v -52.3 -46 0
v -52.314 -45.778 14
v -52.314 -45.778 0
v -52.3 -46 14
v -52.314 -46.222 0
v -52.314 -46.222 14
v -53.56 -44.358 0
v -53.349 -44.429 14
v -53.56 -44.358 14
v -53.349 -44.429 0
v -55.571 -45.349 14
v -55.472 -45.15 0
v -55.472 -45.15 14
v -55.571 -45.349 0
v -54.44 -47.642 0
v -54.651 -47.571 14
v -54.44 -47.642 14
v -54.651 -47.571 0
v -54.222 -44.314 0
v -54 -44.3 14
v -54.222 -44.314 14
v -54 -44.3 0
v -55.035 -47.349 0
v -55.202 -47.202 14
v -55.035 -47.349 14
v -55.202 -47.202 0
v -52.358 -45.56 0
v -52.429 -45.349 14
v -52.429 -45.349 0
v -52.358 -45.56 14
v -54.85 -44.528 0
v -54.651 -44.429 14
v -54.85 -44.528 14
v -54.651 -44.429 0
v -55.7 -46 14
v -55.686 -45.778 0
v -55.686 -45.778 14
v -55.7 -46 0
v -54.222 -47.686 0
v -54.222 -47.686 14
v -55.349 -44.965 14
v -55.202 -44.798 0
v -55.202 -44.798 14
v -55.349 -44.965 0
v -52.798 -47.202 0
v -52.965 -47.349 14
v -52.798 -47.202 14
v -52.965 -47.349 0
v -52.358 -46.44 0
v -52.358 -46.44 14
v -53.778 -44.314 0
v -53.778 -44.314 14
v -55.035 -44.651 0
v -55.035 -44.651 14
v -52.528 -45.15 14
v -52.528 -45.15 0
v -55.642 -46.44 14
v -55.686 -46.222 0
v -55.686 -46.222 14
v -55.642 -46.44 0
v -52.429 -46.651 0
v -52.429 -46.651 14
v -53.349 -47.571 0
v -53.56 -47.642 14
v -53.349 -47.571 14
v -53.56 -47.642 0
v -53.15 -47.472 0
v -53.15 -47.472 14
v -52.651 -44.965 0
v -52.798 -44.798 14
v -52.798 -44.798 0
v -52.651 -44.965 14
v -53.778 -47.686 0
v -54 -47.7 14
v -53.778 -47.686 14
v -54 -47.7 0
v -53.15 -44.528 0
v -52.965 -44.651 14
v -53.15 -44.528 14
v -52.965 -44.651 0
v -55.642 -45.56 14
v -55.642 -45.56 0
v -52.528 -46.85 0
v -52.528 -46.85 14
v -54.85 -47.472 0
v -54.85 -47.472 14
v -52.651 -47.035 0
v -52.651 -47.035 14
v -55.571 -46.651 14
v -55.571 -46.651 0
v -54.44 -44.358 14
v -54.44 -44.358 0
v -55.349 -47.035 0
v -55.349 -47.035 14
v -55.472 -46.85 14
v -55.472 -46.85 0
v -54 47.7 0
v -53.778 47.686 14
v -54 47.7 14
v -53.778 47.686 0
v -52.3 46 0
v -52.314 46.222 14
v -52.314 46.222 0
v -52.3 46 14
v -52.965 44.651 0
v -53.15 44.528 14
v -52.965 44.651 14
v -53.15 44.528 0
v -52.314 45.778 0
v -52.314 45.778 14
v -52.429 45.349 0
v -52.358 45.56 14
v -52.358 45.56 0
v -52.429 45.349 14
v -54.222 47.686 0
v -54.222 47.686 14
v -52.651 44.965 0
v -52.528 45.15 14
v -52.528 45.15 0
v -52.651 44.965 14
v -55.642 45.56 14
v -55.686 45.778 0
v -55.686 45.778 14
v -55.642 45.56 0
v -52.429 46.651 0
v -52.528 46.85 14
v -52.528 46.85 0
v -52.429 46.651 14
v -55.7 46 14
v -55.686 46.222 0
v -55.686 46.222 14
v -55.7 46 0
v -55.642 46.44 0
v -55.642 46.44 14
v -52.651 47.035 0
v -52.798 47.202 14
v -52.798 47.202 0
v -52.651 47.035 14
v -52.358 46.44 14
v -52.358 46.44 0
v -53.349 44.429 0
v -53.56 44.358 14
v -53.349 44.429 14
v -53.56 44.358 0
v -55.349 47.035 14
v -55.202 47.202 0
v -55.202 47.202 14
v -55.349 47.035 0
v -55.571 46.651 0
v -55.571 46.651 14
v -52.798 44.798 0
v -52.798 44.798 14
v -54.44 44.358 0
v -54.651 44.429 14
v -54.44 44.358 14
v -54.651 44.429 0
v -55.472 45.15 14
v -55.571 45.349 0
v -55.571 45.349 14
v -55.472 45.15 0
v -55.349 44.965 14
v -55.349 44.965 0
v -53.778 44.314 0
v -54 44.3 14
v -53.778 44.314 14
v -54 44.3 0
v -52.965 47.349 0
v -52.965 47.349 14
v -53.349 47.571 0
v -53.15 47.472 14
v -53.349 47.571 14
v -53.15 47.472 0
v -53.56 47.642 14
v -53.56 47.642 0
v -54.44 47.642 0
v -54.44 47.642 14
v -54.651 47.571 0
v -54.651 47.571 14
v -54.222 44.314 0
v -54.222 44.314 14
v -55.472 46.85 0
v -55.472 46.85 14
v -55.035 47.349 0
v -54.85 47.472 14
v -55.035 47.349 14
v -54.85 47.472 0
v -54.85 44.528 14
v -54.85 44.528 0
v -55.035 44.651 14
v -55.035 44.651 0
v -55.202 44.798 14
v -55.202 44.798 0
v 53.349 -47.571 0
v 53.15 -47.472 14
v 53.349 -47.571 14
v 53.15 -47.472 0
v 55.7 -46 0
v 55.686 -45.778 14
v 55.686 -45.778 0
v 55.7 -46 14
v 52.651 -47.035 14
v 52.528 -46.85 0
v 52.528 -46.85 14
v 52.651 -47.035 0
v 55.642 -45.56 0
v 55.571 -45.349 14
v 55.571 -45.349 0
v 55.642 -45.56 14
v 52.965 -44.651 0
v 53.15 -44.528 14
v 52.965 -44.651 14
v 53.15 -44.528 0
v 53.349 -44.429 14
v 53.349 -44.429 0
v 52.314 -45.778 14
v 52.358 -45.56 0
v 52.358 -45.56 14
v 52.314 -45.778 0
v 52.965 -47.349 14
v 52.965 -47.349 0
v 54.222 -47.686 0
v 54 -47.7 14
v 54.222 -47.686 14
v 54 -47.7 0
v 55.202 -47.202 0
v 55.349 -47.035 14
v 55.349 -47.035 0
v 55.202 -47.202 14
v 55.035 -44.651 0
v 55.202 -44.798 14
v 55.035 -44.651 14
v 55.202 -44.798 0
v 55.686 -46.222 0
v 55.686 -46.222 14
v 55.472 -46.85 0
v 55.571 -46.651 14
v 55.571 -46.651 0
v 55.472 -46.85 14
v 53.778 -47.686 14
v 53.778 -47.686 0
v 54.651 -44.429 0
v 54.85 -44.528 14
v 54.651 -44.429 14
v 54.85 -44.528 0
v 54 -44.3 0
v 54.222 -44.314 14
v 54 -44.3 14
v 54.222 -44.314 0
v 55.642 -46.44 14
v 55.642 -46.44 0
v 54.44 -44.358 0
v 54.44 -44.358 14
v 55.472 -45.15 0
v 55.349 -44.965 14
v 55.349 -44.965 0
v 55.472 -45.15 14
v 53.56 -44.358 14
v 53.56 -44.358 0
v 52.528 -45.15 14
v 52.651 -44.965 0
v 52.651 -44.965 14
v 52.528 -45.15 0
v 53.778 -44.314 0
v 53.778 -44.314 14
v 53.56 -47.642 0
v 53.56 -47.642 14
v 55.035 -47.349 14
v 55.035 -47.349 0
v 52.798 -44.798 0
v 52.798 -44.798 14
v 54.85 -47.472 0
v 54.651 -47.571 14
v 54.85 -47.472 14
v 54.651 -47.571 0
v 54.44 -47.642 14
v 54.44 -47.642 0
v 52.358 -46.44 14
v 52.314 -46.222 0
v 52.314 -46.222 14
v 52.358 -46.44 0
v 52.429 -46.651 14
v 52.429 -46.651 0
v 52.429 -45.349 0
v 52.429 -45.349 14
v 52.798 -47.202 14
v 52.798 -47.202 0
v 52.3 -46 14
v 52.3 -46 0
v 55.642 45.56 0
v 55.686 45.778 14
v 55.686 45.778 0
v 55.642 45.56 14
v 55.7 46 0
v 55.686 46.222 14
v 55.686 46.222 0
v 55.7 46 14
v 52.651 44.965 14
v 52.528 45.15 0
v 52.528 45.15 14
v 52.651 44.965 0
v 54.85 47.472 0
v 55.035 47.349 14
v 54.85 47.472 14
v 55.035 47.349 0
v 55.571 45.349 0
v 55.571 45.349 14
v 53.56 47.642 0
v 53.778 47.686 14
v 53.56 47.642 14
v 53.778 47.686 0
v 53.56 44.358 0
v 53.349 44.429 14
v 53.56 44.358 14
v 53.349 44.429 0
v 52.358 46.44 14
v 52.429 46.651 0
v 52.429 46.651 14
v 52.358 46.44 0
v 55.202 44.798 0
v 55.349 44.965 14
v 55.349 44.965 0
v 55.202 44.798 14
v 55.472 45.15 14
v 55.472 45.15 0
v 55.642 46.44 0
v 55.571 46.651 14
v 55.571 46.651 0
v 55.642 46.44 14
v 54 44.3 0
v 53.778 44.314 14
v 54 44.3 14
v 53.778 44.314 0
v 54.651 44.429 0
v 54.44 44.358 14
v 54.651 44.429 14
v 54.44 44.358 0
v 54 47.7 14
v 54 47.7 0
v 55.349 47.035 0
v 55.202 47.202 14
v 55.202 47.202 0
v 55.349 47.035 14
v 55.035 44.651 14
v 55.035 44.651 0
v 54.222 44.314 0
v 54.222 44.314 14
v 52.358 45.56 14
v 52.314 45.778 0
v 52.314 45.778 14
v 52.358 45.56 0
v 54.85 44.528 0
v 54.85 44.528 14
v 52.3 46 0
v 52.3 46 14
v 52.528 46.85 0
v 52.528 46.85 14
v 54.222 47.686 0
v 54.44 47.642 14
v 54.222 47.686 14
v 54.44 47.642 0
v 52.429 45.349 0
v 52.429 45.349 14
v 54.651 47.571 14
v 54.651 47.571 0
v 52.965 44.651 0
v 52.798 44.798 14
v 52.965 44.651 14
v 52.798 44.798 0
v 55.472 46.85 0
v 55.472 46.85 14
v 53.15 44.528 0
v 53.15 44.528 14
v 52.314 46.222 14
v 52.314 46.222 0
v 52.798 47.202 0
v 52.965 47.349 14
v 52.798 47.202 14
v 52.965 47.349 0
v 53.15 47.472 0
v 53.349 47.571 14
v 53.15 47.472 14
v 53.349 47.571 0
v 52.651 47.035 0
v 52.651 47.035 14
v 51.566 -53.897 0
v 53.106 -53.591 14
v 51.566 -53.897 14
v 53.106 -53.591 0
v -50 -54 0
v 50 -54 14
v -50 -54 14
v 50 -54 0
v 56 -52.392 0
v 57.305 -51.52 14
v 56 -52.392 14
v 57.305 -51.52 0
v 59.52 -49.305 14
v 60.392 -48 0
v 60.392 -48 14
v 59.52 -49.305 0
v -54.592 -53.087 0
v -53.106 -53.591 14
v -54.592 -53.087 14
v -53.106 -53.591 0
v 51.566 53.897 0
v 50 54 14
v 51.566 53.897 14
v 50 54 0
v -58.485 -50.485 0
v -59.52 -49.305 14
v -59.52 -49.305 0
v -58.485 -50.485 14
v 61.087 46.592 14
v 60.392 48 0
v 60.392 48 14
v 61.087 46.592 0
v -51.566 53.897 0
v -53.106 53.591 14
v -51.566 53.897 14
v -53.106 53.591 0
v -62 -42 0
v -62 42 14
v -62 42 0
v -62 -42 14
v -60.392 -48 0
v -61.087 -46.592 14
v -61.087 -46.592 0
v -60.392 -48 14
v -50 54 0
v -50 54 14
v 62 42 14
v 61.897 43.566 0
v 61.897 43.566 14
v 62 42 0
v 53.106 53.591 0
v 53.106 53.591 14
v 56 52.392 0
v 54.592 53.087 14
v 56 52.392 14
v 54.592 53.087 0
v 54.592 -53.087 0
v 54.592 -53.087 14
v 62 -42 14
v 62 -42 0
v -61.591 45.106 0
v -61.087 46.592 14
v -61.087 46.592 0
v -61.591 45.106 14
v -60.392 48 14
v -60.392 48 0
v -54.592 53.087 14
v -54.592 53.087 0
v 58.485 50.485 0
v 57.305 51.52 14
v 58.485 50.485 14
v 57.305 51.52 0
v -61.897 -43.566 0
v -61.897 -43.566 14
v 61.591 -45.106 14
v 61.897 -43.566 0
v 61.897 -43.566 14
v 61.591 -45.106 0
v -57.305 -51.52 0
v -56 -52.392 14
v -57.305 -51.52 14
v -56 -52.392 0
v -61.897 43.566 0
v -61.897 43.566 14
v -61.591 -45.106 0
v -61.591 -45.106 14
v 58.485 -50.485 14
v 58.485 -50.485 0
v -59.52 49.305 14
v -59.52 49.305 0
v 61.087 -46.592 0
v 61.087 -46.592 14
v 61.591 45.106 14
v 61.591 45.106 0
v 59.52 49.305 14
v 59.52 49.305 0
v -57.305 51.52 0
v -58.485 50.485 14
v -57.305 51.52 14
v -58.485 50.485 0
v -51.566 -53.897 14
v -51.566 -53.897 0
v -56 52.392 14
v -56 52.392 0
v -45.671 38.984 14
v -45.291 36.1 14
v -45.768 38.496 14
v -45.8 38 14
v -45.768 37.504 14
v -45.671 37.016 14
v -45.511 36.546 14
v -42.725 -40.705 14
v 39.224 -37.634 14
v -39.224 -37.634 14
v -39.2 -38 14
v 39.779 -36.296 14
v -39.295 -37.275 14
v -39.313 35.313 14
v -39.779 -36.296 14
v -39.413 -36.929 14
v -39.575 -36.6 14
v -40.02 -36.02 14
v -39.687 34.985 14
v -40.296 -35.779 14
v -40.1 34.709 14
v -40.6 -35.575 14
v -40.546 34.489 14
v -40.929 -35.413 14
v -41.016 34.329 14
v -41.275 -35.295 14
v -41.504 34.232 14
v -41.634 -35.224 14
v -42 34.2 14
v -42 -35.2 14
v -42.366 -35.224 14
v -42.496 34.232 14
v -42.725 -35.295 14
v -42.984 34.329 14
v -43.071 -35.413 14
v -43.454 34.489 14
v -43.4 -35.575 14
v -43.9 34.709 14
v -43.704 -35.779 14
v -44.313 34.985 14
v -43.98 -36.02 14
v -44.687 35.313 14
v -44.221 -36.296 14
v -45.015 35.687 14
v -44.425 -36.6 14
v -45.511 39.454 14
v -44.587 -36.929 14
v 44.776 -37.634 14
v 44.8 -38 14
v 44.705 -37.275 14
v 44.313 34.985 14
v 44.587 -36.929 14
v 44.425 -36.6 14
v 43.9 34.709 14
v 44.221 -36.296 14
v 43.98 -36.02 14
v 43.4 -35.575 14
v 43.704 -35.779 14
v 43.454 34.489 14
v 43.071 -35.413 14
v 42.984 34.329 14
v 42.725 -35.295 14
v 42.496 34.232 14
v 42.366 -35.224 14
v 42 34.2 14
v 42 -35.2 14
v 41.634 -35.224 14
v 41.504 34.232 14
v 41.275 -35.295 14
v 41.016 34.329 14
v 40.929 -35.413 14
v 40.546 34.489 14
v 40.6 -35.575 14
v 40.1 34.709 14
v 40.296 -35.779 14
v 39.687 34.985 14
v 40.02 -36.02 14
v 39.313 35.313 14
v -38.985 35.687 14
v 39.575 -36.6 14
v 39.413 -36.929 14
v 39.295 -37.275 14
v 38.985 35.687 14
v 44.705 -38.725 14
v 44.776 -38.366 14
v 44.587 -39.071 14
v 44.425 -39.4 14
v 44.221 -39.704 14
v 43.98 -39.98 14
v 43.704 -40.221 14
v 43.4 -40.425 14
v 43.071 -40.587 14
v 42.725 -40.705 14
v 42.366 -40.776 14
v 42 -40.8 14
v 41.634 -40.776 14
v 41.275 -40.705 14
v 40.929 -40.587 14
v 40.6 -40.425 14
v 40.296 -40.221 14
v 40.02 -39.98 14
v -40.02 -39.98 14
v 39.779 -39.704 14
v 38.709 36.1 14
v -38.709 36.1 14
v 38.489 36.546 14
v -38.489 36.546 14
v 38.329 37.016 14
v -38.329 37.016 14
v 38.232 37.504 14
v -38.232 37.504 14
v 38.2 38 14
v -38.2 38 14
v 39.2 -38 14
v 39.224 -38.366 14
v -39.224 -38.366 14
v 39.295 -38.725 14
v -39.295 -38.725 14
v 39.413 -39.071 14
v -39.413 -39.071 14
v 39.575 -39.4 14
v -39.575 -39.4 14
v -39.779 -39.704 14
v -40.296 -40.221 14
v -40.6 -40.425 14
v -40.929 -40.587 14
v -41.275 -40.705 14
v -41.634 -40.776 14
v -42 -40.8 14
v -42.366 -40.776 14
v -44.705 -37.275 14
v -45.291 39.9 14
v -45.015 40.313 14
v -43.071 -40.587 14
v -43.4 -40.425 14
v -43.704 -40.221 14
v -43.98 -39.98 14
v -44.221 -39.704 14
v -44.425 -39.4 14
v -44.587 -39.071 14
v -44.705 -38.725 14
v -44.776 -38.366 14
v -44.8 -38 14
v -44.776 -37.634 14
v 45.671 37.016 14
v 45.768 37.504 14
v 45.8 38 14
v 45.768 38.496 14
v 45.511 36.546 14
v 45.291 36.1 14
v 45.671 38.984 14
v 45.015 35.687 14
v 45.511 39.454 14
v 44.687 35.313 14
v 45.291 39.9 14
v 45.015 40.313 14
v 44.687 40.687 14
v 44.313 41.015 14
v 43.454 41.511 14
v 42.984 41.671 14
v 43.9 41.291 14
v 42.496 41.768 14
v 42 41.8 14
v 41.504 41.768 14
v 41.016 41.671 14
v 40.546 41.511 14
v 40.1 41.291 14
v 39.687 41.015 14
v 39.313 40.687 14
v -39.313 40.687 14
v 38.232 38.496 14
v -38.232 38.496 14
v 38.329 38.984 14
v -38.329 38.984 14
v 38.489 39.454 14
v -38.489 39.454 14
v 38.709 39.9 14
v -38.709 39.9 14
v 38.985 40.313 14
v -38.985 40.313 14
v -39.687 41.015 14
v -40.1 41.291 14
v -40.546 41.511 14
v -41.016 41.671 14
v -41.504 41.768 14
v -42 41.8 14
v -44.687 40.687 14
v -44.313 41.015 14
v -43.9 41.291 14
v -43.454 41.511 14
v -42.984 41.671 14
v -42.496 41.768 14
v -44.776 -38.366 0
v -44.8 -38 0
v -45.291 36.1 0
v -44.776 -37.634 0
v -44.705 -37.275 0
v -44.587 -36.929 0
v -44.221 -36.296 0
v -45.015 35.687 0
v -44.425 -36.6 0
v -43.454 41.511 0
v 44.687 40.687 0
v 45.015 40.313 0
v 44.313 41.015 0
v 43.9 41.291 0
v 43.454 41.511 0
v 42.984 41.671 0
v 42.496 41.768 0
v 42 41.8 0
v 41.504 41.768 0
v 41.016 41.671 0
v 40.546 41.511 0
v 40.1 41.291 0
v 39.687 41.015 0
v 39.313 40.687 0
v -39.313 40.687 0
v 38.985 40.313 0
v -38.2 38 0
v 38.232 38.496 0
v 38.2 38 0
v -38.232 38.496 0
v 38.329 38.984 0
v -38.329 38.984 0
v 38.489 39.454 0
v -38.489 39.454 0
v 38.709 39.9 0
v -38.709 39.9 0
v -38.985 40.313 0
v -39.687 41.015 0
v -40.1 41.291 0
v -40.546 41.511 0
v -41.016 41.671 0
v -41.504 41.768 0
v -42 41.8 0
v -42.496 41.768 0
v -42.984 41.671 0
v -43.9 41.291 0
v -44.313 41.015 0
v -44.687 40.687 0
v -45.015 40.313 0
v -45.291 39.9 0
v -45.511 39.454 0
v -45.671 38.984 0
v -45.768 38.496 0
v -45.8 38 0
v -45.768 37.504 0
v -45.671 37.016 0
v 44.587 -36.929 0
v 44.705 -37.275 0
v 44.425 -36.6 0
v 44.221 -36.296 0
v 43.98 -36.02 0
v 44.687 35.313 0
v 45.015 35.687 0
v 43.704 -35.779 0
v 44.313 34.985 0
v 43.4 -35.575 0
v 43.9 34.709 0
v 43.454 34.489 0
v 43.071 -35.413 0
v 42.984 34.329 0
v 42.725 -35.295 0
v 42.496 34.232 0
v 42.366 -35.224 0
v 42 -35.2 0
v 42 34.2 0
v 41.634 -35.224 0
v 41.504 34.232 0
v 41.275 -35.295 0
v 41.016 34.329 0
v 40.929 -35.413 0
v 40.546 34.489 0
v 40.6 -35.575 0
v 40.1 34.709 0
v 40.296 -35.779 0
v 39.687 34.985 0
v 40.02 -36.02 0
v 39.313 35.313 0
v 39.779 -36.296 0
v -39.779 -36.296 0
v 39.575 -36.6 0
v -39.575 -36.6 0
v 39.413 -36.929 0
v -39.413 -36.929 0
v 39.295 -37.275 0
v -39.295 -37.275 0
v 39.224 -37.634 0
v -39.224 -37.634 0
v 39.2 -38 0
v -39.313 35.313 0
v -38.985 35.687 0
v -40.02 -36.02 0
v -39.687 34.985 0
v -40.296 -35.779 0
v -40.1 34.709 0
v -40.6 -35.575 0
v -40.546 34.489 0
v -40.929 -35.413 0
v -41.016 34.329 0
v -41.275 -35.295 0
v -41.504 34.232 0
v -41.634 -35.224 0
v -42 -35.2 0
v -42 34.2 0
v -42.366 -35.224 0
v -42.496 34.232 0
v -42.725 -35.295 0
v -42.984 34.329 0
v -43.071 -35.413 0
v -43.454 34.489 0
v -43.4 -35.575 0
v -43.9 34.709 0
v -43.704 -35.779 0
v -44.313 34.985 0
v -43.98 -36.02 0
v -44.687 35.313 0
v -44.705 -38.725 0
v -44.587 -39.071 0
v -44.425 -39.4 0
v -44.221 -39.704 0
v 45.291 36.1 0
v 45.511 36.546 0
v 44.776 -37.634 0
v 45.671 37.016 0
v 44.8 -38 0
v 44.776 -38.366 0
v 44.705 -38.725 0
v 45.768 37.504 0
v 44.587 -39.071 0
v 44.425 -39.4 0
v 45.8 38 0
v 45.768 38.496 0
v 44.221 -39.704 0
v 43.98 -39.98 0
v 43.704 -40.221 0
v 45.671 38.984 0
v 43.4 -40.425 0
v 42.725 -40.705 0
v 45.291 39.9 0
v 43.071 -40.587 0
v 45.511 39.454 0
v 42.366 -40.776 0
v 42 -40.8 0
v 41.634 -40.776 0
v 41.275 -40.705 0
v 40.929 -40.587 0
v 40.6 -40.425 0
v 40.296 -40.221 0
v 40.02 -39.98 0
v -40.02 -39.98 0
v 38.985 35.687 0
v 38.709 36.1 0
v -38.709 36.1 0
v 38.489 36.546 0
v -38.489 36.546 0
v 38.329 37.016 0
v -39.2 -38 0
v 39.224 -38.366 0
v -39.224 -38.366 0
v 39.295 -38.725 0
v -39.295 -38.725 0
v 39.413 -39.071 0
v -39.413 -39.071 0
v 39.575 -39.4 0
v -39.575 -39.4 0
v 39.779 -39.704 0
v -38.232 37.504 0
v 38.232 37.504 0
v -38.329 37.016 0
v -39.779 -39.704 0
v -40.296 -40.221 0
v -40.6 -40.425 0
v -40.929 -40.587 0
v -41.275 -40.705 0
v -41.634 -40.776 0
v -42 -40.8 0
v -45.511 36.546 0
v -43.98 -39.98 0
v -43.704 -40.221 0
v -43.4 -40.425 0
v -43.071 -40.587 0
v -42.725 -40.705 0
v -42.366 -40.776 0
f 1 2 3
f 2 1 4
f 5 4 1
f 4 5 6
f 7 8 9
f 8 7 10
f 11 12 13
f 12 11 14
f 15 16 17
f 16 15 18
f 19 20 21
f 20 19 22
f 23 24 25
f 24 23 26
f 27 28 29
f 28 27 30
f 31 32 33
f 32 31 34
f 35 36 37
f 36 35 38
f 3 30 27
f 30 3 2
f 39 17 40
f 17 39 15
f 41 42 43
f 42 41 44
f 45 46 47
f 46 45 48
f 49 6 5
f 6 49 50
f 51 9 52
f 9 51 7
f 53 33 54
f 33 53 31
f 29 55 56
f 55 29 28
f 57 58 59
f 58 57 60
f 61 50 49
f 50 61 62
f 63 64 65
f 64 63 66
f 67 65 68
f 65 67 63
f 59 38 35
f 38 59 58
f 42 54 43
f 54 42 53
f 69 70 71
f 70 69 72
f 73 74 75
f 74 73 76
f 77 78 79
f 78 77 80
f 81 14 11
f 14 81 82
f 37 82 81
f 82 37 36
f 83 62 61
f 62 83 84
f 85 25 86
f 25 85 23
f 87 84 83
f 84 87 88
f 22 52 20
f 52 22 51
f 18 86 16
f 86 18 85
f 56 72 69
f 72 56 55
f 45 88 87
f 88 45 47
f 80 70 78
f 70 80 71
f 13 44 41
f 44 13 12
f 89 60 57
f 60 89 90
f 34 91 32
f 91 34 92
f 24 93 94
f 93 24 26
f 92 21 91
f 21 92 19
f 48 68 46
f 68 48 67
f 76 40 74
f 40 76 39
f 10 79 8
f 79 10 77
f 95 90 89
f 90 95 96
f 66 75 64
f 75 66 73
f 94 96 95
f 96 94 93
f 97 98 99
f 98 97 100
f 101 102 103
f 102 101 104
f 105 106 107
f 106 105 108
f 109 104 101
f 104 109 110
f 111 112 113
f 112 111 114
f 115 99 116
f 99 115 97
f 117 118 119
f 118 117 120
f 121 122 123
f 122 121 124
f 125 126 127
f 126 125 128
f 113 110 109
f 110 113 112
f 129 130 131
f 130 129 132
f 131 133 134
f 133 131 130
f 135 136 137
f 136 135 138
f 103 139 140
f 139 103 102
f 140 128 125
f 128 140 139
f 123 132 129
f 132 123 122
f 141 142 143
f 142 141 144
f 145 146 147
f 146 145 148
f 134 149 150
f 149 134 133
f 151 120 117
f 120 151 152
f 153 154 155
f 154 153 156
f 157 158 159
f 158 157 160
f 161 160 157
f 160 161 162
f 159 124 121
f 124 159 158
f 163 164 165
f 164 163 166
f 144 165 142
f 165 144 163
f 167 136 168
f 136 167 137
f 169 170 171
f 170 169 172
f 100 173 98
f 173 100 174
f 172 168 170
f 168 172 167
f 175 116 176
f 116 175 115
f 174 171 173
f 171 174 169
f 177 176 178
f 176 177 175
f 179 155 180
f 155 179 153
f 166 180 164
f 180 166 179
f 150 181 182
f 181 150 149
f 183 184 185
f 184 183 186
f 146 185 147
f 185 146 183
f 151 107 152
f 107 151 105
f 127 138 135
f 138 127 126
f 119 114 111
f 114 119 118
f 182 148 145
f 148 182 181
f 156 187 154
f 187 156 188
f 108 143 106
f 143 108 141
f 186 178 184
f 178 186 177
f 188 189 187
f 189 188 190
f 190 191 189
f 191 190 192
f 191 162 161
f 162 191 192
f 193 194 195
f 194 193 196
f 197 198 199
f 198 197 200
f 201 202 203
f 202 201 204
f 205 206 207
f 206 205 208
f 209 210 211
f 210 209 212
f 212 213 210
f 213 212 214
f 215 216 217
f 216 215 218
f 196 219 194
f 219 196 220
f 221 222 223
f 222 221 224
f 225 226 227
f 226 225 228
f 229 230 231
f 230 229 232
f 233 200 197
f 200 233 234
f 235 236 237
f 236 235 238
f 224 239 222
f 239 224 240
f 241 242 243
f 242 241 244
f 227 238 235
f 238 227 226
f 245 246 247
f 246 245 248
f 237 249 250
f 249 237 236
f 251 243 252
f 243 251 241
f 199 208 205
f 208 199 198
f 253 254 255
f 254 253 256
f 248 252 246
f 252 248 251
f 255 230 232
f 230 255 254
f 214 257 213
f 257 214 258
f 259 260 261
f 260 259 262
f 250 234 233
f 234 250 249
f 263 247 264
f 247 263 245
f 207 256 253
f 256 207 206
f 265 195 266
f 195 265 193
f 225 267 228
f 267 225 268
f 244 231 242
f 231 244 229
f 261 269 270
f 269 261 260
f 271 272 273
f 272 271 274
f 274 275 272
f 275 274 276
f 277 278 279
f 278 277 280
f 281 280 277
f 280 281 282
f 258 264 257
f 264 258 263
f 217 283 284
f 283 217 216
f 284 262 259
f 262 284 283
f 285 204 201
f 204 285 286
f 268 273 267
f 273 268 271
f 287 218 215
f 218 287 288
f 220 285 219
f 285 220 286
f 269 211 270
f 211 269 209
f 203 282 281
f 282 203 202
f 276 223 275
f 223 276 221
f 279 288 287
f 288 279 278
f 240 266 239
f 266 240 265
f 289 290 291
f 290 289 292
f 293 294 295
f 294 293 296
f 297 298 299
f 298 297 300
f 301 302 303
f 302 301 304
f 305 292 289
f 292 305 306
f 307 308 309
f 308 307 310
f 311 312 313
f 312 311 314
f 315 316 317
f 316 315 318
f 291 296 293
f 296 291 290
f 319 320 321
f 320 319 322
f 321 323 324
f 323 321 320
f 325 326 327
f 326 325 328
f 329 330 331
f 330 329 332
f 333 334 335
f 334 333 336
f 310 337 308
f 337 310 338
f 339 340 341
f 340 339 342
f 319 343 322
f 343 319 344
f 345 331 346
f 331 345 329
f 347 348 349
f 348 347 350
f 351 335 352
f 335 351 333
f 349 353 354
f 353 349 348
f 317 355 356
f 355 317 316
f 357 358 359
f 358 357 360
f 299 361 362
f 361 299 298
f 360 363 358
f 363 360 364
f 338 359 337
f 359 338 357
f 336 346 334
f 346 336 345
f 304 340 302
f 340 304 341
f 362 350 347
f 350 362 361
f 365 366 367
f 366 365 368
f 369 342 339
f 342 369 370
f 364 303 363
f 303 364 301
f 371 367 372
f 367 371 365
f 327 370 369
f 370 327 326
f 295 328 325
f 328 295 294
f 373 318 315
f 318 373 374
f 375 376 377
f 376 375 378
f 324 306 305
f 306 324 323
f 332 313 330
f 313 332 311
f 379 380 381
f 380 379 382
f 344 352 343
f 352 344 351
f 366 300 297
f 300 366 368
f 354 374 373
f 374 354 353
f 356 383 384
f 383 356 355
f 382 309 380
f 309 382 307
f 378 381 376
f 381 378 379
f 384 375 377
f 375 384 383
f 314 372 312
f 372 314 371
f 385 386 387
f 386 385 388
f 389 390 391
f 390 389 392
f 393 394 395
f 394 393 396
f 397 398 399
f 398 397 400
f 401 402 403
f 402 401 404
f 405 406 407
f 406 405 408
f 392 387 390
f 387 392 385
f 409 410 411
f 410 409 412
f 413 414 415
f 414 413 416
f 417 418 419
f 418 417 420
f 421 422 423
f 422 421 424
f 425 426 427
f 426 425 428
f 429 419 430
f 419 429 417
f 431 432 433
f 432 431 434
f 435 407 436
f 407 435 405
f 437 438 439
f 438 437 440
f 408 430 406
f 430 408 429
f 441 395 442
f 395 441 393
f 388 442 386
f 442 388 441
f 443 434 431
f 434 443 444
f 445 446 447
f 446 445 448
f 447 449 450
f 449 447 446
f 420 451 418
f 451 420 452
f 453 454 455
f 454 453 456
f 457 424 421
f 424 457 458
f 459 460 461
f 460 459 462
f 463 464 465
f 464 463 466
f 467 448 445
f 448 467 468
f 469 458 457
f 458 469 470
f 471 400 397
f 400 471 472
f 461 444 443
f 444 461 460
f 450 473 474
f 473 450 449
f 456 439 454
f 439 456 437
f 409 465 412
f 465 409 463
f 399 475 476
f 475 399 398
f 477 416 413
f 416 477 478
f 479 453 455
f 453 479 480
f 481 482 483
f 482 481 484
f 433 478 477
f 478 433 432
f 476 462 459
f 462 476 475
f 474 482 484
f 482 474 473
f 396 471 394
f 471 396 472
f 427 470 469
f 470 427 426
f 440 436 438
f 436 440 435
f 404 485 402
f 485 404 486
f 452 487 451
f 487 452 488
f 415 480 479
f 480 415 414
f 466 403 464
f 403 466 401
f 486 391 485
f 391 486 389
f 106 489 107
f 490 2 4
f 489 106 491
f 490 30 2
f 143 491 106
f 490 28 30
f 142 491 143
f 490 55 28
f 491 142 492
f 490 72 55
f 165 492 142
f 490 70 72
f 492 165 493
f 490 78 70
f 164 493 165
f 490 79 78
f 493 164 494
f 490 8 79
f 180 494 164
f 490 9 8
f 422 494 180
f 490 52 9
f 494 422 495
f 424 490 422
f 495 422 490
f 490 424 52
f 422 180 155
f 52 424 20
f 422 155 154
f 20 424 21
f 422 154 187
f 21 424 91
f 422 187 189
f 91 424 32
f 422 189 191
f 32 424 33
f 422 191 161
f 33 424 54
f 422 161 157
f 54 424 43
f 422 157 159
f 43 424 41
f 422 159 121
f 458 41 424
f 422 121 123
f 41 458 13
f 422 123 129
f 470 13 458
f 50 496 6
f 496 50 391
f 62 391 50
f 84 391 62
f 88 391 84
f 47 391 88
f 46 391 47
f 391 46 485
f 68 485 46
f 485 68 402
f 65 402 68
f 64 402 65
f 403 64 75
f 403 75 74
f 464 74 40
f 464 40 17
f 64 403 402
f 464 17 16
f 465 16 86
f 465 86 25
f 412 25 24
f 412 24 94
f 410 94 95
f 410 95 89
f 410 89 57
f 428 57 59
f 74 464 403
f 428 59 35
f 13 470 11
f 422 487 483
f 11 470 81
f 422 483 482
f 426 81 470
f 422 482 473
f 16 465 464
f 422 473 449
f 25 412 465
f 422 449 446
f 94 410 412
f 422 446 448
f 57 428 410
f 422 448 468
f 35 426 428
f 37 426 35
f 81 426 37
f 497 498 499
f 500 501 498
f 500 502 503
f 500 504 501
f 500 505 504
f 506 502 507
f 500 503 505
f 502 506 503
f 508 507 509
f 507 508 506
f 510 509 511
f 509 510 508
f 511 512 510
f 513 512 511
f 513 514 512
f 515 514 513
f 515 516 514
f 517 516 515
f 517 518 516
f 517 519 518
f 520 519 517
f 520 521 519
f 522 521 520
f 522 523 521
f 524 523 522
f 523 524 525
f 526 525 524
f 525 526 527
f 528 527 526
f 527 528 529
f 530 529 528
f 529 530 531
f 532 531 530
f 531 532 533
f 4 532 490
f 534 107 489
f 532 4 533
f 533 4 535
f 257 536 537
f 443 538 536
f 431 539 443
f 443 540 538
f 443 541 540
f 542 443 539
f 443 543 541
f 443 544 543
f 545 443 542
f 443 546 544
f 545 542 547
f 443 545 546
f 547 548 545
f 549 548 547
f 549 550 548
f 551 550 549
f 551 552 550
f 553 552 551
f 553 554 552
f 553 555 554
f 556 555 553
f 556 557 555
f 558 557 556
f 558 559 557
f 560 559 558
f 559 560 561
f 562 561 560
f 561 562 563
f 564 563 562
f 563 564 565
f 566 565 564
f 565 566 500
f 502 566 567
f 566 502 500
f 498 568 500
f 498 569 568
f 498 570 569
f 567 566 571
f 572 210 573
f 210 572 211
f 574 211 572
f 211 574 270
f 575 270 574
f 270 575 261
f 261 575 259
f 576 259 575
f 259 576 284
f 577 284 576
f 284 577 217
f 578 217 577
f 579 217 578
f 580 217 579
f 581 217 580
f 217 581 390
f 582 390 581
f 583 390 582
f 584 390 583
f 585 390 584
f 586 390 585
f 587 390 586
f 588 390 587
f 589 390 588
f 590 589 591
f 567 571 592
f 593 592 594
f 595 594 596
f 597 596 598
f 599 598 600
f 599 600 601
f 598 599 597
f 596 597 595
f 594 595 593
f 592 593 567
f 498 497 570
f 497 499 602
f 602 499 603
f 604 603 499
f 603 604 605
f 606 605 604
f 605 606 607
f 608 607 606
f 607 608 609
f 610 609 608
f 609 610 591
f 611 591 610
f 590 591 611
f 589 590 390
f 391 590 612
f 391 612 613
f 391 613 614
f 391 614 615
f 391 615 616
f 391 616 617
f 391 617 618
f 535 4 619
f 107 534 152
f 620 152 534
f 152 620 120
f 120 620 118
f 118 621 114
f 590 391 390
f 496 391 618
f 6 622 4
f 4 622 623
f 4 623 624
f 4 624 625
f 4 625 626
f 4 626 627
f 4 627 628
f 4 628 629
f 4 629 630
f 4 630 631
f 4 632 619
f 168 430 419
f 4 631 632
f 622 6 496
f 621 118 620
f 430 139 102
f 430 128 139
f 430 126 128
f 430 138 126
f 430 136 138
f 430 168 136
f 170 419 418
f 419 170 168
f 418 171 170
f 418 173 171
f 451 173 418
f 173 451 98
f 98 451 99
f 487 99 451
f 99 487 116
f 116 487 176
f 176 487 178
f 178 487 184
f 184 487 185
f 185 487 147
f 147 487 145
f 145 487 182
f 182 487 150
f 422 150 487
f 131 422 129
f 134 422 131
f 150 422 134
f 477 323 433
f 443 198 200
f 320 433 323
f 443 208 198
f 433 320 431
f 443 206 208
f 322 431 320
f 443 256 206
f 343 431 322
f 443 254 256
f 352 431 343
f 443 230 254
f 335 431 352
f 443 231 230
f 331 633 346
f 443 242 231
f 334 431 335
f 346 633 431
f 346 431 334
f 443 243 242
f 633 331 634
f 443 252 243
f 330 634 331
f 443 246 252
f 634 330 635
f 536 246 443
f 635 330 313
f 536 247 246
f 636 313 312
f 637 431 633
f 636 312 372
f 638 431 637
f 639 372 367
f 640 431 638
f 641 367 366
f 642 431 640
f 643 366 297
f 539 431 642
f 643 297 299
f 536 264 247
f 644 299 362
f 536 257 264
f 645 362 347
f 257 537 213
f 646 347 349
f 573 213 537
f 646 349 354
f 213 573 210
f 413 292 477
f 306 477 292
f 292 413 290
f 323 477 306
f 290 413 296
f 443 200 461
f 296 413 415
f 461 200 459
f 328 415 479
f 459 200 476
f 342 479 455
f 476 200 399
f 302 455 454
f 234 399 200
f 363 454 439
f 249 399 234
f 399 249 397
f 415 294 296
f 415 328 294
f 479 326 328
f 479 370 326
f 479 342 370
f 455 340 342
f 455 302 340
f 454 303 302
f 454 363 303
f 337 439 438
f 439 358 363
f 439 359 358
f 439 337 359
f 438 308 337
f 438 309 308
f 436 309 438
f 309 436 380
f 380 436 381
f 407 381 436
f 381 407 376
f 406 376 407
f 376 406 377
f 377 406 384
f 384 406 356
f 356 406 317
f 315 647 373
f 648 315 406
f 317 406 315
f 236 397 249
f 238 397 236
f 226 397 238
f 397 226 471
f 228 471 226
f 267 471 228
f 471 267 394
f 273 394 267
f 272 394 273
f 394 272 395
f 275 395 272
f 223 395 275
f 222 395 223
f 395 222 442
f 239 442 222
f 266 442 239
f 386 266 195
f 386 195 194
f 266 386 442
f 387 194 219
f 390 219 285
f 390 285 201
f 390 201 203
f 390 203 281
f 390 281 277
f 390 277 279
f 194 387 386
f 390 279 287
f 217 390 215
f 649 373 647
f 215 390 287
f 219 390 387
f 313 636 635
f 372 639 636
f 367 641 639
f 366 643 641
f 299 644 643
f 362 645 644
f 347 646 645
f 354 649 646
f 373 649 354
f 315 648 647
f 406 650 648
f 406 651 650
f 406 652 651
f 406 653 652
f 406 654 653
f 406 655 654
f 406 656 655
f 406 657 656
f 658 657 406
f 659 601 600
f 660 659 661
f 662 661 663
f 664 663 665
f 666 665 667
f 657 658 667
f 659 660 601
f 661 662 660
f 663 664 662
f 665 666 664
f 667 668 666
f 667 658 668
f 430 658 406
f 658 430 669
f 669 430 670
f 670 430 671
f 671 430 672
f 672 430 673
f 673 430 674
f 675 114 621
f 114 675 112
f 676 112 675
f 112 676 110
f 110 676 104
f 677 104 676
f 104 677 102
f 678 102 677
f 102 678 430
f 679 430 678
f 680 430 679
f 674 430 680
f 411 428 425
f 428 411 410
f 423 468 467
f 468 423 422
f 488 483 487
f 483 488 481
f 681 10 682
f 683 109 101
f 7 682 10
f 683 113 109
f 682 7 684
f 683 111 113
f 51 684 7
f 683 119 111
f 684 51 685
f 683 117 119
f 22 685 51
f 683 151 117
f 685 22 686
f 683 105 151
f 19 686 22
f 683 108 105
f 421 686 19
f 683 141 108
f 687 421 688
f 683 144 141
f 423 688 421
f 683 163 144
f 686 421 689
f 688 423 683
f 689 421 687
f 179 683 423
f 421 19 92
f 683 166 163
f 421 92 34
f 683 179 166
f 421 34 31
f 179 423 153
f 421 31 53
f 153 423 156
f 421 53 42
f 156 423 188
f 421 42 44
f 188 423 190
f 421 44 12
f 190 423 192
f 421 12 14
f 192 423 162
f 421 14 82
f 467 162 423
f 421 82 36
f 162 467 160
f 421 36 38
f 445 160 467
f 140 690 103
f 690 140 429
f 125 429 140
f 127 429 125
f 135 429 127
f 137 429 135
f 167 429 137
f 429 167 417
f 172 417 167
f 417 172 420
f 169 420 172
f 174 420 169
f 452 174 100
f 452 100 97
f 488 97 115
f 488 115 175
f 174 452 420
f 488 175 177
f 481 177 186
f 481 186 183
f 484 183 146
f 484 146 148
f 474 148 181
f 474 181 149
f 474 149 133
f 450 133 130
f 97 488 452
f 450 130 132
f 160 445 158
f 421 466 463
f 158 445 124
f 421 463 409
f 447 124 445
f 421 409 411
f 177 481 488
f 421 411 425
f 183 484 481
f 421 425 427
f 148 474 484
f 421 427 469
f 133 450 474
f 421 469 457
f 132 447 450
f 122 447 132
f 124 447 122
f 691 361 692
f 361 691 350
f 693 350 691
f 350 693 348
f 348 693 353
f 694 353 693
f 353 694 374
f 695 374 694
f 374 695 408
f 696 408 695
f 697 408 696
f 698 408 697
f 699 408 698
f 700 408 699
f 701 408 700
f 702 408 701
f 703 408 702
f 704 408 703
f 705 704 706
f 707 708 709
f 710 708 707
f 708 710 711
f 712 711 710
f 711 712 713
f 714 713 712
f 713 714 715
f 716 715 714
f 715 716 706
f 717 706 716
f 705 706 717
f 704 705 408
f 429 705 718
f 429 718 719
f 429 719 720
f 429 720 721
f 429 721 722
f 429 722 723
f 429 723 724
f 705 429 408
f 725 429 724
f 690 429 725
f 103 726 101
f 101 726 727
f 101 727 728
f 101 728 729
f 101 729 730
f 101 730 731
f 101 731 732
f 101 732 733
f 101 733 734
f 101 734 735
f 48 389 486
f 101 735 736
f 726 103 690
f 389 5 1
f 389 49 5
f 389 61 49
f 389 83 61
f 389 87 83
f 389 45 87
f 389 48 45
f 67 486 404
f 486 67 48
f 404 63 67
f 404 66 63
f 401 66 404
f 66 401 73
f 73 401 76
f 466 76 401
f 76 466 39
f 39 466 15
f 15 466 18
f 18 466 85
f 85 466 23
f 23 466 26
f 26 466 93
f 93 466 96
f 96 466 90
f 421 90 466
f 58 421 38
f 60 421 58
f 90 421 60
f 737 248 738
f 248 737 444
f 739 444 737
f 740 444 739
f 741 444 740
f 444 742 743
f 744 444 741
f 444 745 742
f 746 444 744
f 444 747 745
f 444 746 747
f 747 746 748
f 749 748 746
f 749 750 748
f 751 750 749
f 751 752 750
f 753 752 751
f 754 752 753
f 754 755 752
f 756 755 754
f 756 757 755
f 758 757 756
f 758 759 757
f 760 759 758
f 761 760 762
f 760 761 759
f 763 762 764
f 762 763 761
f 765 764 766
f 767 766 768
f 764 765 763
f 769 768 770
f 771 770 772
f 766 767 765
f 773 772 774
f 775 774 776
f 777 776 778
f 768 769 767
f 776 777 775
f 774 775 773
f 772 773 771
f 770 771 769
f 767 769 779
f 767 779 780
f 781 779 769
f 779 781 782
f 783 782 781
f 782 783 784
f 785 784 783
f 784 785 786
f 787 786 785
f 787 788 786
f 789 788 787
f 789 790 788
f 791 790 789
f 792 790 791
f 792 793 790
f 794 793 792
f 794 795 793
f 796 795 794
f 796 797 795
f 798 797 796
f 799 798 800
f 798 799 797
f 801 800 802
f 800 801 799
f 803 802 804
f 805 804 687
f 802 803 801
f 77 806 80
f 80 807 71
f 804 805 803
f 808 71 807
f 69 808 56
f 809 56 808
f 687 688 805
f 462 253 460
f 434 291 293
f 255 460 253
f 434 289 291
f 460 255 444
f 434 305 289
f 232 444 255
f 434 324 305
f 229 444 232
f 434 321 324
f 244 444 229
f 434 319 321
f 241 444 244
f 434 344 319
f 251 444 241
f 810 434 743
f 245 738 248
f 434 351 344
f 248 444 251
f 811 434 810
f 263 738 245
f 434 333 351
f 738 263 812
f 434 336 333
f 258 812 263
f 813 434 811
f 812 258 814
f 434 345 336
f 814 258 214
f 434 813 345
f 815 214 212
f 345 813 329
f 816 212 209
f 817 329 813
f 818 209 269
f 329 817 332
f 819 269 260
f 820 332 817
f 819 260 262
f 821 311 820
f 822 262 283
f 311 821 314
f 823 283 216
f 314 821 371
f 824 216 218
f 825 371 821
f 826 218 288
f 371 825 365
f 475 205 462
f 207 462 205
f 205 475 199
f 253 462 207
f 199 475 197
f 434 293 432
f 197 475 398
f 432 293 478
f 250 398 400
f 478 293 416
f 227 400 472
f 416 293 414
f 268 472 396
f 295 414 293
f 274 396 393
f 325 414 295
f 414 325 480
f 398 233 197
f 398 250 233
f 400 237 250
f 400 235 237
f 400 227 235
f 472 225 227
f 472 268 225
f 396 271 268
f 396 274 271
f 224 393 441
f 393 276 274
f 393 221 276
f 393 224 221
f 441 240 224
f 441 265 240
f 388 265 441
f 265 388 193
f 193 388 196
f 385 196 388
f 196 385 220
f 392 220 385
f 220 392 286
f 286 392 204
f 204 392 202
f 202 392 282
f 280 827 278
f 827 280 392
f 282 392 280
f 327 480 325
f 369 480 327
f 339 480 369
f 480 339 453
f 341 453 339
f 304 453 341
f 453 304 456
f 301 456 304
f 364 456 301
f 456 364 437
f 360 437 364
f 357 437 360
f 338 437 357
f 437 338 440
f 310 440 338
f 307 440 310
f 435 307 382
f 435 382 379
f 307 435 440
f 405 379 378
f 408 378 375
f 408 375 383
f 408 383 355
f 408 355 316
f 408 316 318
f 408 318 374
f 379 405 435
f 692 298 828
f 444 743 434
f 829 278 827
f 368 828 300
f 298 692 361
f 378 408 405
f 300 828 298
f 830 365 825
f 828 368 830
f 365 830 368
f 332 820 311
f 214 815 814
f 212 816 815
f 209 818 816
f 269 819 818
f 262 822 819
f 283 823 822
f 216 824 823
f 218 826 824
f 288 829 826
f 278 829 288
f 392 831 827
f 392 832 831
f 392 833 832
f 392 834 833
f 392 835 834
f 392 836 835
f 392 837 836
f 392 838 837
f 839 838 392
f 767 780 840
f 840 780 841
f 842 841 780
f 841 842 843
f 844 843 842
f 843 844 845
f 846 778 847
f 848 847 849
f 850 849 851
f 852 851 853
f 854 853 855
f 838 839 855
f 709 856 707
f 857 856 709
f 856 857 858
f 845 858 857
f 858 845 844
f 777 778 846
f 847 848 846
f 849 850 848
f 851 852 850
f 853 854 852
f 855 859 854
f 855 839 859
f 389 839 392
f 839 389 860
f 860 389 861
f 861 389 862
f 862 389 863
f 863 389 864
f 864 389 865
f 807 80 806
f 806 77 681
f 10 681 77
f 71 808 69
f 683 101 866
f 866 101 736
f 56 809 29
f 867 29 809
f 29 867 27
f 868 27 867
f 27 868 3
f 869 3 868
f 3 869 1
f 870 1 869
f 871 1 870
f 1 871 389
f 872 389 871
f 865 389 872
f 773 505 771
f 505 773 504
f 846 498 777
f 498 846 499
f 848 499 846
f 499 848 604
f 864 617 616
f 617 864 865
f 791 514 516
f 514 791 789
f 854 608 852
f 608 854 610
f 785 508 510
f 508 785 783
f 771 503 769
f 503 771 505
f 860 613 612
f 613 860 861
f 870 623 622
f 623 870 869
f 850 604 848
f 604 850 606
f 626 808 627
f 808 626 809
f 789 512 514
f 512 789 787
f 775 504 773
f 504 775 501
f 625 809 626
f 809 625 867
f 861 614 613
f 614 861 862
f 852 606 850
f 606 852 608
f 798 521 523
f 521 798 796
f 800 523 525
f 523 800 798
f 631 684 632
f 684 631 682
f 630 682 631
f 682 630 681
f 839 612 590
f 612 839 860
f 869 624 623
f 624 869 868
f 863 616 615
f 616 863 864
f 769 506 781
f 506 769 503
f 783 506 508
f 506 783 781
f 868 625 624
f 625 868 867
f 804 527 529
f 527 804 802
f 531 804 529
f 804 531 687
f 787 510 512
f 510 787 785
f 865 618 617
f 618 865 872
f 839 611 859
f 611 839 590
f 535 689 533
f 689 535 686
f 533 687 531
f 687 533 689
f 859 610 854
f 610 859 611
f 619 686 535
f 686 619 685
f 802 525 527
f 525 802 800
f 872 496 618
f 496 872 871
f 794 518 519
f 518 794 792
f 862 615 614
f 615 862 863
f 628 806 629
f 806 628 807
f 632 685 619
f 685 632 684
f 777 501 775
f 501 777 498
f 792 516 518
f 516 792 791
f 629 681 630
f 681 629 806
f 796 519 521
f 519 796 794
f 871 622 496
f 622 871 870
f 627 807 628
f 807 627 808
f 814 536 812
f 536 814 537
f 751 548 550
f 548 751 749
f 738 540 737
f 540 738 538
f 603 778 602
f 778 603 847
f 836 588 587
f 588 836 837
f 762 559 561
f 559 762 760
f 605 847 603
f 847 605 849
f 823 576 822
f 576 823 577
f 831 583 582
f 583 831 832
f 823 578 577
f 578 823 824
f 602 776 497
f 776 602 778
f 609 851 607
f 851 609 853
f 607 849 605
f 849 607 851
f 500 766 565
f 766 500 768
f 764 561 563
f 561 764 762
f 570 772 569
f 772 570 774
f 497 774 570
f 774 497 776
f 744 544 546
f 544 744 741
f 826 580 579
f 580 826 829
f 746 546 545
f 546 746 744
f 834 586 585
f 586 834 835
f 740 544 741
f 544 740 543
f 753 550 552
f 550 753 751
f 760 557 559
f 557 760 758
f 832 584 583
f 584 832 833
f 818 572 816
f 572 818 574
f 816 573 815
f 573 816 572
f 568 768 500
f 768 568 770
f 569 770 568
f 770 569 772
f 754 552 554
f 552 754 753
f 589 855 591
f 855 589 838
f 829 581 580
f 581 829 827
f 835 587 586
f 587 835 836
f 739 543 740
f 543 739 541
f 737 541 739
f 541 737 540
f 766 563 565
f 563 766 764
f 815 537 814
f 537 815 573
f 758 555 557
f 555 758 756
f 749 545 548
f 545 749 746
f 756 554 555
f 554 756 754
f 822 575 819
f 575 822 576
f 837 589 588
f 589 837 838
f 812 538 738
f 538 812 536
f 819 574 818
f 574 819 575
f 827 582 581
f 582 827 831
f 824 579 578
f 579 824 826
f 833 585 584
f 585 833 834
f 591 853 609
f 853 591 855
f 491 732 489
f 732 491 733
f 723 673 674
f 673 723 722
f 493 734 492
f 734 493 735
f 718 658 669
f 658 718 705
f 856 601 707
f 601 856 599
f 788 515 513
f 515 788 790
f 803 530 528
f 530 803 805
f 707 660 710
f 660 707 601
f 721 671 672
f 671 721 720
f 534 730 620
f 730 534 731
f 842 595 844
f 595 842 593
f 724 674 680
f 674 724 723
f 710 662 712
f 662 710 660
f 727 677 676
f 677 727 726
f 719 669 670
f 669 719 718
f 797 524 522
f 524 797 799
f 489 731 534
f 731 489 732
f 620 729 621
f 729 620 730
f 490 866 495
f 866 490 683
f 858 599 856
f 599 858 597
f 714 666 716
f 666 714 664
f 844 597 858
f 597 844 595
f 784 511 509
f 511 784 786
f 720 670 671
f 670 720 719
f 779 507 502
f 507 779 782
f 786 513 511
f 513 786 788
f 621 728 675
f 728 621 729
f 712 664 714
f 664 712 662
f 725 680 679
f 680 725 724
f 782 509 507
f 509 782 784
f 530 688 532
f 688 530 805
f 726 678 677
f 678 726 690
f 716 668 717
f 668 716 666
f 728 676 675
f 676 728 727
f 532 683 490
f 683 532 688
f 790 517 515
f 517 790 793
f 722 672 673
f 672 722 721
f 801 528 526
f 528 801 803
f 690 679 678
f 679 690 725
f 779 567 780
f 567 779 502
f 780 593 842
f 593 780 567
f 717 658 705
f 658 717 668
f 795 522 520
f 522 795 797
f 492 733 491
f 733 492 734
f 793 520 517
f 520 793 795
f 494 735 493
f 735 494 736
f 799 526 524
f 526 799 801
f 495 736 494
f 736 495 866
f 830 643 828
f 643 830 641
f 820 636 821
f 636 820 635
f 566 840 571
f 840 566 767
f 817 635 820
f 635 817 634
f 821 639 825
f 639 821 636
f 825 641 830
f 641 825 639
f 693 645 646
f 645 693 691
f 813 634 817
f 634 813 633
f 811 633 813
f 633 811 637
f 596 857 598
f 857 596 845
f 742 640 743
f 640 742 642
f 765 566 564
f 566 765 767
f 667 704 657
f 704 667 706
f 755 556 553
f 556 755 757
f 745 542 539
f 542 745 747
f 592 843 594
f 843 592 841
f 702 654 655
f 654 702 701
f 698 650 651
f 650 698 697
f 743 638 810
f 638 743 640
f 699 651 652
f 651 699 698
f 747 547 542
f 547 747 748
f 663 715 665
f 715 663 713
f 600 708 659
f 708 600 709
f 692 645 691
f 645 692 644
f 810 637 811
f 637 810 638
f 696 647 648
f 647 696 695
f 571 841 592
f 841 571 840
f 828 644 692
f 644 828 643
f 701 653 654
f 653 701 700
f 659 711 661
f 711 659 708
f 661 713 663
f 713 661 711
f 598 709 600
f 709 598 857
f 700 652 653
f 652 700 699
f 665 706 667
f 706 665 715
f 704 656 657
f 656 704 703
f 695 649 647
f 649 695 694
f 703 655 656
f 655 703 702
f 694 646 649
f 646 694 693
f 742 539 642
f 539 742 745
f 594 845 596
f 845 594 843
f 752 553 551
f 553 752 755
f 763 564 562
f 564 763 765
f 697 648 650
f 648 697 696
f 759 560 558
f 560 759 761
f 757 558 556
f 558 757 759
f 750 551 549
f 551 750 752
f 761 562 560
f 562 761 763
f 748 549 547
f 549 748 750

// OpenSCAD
// ============================================================================
// Get Me An Alt — Parametric OpenSCAD Module
// Part: PRT-04 — 4-Wheel V-Slot Gantry Carriage Deck with Eccentric Bores (gantry-carriage-plate)
// Function: Travels linearly along the 2020 rails carrying the pan/tilt head.
// Target Bounding Box (mm): [124, 108, 14]
// Print Material: PETG | Min Wall: >= 1.6mm | Tolerance: 0.2mm
// ============================================================================
$fn = 48;
part_width = 124;
part_depth = 108;
part_height = 14;
wall_thickness = 3.6;
floor_thickness = 3.6;
corner_radius = 12;
tolerance = 0.2;
m3_clearance_d = 3.4; // M3 screw clearance hole (3.0mm + 2*0.2mm)

module rounded_rect_prism(w, d, h, r) {
  cr = max(0.5, min(r, min(w, d) / 2 - 0.1));
  linear_extrude(height = h)
    offset(r = cr)
      offset(r = -cr)
        square([w, d], center = true);
}

module part_gantry_carriage_plate() {
  difference() {
    rounded_rect_prism(part_width, part_depth, part_height, corner_radius);
    translate([-42, -38, -1]) cylinder(h = part_height + 2, r = 2.6 + tolerance);
    translate([42, -38, -1]) cylinder(h = part_height + 2, r = 2.6 + tolerance);
    translate([-42, 38, -1]) cylinder(h = part_height + 2, r = 3.6 + tolerance);
    translate([42, 38, -1]) cylinder(h = part_height + 2, r = 3.6 + tolerance);
    // M3 corner mounting holes
    for (mx = [-1, 1], my = [-1, 1]) {
      translate([mx * (part_width / 2 - 8), my * (part_depth / 2 - 8), -1])
        cylinder(h = part_height + 2, d = m3_clearance_d);
    }
  }
}

part_gantry_carriage_plate();
